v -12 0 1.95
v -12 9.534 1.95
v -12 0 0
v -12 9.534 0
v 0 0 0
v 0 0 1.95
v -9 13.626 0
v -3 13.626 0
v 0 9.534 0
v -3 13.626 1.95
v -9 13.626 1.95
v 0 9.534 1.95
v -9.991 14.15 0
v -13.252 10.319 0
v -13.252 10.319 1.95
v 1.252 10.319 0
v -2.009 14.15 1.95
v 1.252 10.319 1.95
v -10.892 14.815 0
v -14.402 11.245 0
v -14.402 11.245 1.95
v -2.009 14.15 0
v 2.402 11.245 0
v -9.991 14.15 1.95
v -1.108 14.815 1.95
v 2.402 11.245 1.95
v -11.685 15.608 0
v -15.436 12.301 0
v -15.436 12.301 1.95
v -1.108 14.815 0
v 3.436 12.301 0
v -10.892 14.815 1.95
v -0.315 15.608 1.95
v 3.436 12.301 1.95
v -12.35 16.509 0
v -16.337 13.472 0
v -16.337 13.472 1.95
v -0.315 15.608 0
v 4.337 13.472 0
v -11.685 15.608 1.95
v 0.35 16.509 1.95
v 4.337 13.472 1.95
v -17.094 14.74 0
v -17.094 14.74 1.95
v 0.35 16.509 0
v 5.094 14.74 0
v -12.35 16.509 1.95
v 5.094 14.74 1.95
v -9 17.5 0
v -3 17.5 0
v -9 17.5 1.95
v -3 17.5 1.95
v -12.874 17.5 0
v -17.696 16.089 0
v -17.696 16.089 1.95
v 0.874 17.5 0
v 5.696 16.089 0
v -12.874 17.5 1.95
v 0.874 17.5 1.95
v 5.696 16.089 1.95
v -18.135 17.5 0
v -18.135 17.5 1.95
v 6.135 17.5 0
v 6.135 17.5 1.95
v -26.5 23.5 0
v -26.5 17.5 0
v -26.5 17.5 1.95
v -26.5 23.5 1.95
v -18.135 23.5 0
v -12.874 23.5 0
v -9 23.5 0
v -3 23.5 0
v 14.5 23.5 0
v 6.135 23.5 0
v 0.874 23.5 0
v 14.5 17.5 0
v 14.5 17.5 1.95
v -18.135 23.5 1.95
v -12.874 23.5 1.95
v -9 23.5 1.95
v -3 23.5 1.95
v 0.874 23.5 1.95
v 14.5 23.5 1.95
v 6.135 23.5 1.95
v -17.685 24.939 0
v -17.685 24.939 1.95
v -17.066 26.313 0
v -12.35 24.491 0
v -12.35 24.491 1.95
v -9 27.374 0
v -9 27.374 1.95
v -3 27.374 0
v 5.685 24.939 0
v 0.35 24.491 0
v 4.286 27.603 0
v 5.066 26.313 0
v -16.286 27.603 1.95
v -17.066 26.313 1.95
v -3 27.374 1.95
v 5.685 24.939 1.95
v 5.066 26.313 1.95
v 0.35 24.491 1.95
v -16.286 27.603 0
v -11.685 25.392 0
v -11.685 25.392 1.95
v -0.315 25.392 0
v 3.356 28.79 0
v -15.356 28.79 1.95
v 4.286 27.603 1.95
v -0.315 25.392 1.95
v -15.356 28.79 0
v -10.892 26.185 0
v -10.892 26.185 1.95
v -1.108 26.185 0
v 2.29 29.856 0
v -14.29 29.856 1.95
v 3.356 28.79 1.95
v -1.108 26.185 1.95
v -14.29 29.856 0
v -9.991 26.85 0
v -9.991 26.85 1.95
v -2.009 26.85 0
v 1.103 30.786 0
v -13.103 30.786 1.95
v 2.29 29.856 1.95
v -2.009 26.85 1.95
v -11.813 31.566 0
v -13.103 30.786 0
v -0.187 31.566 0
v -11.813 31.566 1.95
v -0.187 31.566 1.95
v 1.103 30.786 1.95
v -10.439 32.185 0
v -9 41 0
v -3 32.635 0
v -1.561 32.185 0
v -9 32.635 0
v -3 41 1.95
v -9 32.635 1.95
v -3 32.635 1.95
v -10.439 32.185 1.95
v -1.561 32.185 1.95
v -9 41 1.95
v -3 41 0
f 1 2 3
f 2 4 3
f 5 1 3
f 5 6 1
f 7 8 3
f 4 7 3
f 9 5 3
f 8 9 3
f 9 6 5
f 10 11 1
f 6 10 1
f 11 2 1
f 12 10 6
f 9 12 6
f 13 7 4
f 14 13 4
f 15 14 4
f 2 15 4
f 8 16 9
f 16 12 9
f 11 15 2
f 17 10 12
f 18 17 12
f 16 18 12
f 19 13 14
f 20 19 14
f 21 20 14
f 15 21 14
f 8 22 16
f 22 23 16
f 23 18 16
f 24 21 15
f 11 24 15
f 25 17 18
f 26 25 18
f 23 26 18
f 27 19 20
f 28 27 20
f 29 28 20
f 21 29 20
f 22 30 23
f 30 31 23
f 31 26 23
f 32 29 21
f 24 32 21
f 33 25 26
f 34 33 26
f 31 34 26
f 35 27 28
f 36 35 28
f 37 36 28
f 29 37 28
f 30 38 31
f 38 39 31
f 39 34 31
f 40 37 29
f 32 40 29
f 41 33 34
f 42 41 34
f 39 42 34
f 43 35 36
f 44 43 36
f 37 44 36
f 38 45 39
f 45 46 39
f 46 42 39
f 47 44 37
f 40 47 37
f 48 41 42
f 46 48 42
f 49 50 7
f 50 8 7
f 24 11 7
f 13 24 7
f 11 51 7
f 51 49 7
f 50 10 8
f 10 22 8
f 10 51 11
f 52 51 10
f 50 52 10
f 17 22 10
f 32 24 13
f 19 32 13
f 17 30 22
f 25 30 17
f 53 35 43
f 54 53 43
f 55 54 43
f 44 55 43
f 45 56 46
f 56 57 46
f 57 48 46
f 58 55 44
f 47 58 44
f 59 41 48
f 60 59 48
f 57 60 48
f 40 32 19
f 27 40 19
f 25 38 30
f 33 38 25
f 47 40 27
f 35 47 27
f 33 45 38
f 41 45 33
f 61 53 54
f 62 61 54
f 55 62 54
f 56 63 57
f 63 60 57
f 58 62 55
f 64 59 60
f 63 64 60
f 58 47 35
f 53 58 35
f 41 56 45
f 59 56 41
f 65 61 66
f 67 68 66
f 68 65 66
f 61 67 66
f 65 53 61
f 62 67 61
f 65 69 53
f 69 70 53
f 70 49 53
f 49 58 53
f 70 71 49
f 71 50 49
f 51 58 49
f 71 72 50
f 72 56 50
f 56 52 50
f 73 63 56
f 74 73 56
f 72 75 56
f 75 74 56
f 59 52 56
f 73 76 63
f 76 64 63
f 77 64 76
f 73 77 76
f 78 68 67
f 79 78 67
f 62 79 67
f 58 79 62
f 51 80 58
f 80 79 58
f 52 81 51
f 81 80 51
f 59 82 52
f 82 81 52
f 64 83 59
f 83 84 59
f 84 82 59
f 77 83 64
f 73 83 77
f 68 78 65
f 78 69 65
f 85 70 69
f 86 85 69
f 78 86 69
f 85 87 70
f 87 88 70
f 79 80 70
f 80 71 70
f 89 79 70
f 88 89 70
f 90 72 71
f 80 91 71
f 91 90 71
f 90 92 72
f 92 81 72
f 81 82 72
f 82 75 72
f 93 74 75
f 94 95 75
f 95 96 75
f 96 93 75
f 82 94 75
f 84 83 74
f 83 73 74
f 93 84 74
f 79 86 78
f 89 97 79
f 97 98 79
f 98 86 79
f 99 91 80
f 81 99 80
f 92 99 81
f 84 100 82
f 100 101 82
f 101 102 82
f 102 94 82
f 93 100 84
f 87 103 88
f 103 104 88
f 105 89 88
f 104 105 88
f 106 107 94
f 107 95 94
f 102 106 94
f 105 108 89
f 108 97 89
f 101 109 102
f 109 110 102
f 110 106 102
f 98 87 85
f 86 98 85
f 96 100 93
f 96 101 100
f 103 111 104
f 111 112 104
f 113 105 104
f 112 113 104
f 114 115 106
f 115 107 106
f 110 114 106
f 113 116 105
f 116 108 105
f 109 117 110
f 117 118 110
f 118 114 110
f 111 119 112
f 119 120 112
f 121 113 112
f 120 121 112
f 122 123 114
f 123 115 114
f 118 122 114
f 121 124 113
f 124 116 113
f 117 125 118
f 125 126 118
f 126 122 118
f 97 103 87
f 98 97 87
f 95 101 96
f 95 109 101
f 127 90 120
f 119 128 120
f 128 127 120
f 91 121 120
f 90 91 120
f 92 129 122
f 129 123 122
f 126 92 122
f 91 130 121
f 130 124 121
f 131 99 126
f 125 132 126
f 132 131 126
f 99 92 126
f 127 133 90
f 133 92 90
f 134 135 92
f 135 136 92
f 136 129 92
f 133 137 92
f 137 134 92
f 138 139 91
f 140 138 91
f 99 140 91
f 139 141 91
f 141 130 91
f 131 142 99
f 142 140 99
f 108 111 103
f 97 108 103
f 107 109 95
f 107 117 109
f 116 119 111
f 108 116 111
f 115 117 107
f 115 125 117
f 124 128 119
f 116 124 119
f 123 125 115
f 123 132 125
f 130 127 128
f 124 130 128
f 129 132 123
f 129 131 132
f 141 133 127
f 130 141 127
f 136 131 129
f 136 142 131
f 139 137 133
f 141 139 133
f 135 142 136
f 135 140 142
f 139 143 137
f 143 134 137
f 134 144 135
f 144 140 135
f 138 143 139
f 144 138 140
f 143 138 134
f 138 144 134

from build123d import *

# Parameters (mm, degrees)
SALIENTE_EXTRUIR1_DEPTH = 1.95
CROQUIS2_W              = 9.2
CROQUIS2_H              = 12
CORTAR_EXTRUIR1_DEPTH   = 2


with BuildPart() as part:
    # Croquis1 → Saliente-Extruir1 (new body)
    with BuildSketch(Plane.XY):
        with BuildLine():
            Line((0, 0), (-12, 0))
            Line((-12, 0), (-12, 9.5341439))
            ThreePointArc((-12, 9.5341439), (-15.903544777, 12.873087069), (-18.1346611, 17.5))
            Line((-18.1346611, 17.5), (-26.5, 17.5))
            Line((-26.5, 17.5), (-26.5, 23.5))
            Line((-26.5, 23.5), (-18.1346611, 23.5))
            ThreePointArc((-18.1346611, 23.5), (-14.838834765, 29.338834765), (-9, 32.6346611))
            Line((-9, 32.6346611), (-9, 41))
            Line((-9, 41), (-3, 41))
            Line((-3, 41), (-3, 32.6346611))
            ThreePointArc((-3, 32.6346611), (2.838834765, 29.338834765), (6.1346611, 23.5))
            Line((6.1346611, 23.5), (14.5, 23.5))
            Line((14.5, 23.5), (14.5, 17.5))
            Line((14.5, 17.5), (6.1346611, 17.5))
            ThreePointArc((6.1346611, 17.5), (3.903544777, 12.873087069), (0, 9.5341439))
            Line((0, 9.5341439), (0, 0))
        make_face()
        with BuildLine():
            Line((-9, 23.5), (-9, 27.373863542))
            ThreePointArc((-9, 27.373863542), (-11.303300859, 25.803300859), (-12.873863542, 23.5))
            Line((-12.873863542, 23.5), (-9, 23.5))
        make_face(mode=Mode.SUBTRACT)
        with BuildLine():
            Line((-3, 23.5), (-3, 27.373863542))
            ThreePointArc((-3, 27.373863542), (-0.696699141, 25.803300859), (0.873863542, 23.5))
            Line((0.873863542, 23.5), (-3, 23.5))
        make_face(mode=Mode.SUBTRACT)
        with BuildLine():
            Line((-9, 17.5), (-9, 13.626136458))
            ThreePointArc((-9, 13.626136458), (-11.303300859, 15.196699141), (-12.873863542, 17.5))
            Line((-12.873863542, 17.5), (-9, 17.5))
        make_face(mode=Mode.SUBTRACT)
        with BuildLine():
            Line((-3, 17.5), (-3, 13.626136458))
            ThreePointArc((-3, 13.626136458), (-0.696699141, 15.196699141), (0.873863542, 17.5))
            Line((0.873863542, 17.5), (-3, 17.5))
        make_face(mode=Mode.SUBTRACT)
    extrude(amount=SALIENTE_EXTRUIR1_DEPTH)

    # Croquis2 → Cortar-Extruir1 (cut)
    with BuildSketch(Plane.XY.offset(4)):
        with Locations((-6, 6)):
            Rectangle(CROQUIS2_W, CROQUIS2_H)
    extrude(amount=-CORTAR_EXTRUIR1_DEPTH, mode=Mode.SUBTRACT)


solid = part.part
